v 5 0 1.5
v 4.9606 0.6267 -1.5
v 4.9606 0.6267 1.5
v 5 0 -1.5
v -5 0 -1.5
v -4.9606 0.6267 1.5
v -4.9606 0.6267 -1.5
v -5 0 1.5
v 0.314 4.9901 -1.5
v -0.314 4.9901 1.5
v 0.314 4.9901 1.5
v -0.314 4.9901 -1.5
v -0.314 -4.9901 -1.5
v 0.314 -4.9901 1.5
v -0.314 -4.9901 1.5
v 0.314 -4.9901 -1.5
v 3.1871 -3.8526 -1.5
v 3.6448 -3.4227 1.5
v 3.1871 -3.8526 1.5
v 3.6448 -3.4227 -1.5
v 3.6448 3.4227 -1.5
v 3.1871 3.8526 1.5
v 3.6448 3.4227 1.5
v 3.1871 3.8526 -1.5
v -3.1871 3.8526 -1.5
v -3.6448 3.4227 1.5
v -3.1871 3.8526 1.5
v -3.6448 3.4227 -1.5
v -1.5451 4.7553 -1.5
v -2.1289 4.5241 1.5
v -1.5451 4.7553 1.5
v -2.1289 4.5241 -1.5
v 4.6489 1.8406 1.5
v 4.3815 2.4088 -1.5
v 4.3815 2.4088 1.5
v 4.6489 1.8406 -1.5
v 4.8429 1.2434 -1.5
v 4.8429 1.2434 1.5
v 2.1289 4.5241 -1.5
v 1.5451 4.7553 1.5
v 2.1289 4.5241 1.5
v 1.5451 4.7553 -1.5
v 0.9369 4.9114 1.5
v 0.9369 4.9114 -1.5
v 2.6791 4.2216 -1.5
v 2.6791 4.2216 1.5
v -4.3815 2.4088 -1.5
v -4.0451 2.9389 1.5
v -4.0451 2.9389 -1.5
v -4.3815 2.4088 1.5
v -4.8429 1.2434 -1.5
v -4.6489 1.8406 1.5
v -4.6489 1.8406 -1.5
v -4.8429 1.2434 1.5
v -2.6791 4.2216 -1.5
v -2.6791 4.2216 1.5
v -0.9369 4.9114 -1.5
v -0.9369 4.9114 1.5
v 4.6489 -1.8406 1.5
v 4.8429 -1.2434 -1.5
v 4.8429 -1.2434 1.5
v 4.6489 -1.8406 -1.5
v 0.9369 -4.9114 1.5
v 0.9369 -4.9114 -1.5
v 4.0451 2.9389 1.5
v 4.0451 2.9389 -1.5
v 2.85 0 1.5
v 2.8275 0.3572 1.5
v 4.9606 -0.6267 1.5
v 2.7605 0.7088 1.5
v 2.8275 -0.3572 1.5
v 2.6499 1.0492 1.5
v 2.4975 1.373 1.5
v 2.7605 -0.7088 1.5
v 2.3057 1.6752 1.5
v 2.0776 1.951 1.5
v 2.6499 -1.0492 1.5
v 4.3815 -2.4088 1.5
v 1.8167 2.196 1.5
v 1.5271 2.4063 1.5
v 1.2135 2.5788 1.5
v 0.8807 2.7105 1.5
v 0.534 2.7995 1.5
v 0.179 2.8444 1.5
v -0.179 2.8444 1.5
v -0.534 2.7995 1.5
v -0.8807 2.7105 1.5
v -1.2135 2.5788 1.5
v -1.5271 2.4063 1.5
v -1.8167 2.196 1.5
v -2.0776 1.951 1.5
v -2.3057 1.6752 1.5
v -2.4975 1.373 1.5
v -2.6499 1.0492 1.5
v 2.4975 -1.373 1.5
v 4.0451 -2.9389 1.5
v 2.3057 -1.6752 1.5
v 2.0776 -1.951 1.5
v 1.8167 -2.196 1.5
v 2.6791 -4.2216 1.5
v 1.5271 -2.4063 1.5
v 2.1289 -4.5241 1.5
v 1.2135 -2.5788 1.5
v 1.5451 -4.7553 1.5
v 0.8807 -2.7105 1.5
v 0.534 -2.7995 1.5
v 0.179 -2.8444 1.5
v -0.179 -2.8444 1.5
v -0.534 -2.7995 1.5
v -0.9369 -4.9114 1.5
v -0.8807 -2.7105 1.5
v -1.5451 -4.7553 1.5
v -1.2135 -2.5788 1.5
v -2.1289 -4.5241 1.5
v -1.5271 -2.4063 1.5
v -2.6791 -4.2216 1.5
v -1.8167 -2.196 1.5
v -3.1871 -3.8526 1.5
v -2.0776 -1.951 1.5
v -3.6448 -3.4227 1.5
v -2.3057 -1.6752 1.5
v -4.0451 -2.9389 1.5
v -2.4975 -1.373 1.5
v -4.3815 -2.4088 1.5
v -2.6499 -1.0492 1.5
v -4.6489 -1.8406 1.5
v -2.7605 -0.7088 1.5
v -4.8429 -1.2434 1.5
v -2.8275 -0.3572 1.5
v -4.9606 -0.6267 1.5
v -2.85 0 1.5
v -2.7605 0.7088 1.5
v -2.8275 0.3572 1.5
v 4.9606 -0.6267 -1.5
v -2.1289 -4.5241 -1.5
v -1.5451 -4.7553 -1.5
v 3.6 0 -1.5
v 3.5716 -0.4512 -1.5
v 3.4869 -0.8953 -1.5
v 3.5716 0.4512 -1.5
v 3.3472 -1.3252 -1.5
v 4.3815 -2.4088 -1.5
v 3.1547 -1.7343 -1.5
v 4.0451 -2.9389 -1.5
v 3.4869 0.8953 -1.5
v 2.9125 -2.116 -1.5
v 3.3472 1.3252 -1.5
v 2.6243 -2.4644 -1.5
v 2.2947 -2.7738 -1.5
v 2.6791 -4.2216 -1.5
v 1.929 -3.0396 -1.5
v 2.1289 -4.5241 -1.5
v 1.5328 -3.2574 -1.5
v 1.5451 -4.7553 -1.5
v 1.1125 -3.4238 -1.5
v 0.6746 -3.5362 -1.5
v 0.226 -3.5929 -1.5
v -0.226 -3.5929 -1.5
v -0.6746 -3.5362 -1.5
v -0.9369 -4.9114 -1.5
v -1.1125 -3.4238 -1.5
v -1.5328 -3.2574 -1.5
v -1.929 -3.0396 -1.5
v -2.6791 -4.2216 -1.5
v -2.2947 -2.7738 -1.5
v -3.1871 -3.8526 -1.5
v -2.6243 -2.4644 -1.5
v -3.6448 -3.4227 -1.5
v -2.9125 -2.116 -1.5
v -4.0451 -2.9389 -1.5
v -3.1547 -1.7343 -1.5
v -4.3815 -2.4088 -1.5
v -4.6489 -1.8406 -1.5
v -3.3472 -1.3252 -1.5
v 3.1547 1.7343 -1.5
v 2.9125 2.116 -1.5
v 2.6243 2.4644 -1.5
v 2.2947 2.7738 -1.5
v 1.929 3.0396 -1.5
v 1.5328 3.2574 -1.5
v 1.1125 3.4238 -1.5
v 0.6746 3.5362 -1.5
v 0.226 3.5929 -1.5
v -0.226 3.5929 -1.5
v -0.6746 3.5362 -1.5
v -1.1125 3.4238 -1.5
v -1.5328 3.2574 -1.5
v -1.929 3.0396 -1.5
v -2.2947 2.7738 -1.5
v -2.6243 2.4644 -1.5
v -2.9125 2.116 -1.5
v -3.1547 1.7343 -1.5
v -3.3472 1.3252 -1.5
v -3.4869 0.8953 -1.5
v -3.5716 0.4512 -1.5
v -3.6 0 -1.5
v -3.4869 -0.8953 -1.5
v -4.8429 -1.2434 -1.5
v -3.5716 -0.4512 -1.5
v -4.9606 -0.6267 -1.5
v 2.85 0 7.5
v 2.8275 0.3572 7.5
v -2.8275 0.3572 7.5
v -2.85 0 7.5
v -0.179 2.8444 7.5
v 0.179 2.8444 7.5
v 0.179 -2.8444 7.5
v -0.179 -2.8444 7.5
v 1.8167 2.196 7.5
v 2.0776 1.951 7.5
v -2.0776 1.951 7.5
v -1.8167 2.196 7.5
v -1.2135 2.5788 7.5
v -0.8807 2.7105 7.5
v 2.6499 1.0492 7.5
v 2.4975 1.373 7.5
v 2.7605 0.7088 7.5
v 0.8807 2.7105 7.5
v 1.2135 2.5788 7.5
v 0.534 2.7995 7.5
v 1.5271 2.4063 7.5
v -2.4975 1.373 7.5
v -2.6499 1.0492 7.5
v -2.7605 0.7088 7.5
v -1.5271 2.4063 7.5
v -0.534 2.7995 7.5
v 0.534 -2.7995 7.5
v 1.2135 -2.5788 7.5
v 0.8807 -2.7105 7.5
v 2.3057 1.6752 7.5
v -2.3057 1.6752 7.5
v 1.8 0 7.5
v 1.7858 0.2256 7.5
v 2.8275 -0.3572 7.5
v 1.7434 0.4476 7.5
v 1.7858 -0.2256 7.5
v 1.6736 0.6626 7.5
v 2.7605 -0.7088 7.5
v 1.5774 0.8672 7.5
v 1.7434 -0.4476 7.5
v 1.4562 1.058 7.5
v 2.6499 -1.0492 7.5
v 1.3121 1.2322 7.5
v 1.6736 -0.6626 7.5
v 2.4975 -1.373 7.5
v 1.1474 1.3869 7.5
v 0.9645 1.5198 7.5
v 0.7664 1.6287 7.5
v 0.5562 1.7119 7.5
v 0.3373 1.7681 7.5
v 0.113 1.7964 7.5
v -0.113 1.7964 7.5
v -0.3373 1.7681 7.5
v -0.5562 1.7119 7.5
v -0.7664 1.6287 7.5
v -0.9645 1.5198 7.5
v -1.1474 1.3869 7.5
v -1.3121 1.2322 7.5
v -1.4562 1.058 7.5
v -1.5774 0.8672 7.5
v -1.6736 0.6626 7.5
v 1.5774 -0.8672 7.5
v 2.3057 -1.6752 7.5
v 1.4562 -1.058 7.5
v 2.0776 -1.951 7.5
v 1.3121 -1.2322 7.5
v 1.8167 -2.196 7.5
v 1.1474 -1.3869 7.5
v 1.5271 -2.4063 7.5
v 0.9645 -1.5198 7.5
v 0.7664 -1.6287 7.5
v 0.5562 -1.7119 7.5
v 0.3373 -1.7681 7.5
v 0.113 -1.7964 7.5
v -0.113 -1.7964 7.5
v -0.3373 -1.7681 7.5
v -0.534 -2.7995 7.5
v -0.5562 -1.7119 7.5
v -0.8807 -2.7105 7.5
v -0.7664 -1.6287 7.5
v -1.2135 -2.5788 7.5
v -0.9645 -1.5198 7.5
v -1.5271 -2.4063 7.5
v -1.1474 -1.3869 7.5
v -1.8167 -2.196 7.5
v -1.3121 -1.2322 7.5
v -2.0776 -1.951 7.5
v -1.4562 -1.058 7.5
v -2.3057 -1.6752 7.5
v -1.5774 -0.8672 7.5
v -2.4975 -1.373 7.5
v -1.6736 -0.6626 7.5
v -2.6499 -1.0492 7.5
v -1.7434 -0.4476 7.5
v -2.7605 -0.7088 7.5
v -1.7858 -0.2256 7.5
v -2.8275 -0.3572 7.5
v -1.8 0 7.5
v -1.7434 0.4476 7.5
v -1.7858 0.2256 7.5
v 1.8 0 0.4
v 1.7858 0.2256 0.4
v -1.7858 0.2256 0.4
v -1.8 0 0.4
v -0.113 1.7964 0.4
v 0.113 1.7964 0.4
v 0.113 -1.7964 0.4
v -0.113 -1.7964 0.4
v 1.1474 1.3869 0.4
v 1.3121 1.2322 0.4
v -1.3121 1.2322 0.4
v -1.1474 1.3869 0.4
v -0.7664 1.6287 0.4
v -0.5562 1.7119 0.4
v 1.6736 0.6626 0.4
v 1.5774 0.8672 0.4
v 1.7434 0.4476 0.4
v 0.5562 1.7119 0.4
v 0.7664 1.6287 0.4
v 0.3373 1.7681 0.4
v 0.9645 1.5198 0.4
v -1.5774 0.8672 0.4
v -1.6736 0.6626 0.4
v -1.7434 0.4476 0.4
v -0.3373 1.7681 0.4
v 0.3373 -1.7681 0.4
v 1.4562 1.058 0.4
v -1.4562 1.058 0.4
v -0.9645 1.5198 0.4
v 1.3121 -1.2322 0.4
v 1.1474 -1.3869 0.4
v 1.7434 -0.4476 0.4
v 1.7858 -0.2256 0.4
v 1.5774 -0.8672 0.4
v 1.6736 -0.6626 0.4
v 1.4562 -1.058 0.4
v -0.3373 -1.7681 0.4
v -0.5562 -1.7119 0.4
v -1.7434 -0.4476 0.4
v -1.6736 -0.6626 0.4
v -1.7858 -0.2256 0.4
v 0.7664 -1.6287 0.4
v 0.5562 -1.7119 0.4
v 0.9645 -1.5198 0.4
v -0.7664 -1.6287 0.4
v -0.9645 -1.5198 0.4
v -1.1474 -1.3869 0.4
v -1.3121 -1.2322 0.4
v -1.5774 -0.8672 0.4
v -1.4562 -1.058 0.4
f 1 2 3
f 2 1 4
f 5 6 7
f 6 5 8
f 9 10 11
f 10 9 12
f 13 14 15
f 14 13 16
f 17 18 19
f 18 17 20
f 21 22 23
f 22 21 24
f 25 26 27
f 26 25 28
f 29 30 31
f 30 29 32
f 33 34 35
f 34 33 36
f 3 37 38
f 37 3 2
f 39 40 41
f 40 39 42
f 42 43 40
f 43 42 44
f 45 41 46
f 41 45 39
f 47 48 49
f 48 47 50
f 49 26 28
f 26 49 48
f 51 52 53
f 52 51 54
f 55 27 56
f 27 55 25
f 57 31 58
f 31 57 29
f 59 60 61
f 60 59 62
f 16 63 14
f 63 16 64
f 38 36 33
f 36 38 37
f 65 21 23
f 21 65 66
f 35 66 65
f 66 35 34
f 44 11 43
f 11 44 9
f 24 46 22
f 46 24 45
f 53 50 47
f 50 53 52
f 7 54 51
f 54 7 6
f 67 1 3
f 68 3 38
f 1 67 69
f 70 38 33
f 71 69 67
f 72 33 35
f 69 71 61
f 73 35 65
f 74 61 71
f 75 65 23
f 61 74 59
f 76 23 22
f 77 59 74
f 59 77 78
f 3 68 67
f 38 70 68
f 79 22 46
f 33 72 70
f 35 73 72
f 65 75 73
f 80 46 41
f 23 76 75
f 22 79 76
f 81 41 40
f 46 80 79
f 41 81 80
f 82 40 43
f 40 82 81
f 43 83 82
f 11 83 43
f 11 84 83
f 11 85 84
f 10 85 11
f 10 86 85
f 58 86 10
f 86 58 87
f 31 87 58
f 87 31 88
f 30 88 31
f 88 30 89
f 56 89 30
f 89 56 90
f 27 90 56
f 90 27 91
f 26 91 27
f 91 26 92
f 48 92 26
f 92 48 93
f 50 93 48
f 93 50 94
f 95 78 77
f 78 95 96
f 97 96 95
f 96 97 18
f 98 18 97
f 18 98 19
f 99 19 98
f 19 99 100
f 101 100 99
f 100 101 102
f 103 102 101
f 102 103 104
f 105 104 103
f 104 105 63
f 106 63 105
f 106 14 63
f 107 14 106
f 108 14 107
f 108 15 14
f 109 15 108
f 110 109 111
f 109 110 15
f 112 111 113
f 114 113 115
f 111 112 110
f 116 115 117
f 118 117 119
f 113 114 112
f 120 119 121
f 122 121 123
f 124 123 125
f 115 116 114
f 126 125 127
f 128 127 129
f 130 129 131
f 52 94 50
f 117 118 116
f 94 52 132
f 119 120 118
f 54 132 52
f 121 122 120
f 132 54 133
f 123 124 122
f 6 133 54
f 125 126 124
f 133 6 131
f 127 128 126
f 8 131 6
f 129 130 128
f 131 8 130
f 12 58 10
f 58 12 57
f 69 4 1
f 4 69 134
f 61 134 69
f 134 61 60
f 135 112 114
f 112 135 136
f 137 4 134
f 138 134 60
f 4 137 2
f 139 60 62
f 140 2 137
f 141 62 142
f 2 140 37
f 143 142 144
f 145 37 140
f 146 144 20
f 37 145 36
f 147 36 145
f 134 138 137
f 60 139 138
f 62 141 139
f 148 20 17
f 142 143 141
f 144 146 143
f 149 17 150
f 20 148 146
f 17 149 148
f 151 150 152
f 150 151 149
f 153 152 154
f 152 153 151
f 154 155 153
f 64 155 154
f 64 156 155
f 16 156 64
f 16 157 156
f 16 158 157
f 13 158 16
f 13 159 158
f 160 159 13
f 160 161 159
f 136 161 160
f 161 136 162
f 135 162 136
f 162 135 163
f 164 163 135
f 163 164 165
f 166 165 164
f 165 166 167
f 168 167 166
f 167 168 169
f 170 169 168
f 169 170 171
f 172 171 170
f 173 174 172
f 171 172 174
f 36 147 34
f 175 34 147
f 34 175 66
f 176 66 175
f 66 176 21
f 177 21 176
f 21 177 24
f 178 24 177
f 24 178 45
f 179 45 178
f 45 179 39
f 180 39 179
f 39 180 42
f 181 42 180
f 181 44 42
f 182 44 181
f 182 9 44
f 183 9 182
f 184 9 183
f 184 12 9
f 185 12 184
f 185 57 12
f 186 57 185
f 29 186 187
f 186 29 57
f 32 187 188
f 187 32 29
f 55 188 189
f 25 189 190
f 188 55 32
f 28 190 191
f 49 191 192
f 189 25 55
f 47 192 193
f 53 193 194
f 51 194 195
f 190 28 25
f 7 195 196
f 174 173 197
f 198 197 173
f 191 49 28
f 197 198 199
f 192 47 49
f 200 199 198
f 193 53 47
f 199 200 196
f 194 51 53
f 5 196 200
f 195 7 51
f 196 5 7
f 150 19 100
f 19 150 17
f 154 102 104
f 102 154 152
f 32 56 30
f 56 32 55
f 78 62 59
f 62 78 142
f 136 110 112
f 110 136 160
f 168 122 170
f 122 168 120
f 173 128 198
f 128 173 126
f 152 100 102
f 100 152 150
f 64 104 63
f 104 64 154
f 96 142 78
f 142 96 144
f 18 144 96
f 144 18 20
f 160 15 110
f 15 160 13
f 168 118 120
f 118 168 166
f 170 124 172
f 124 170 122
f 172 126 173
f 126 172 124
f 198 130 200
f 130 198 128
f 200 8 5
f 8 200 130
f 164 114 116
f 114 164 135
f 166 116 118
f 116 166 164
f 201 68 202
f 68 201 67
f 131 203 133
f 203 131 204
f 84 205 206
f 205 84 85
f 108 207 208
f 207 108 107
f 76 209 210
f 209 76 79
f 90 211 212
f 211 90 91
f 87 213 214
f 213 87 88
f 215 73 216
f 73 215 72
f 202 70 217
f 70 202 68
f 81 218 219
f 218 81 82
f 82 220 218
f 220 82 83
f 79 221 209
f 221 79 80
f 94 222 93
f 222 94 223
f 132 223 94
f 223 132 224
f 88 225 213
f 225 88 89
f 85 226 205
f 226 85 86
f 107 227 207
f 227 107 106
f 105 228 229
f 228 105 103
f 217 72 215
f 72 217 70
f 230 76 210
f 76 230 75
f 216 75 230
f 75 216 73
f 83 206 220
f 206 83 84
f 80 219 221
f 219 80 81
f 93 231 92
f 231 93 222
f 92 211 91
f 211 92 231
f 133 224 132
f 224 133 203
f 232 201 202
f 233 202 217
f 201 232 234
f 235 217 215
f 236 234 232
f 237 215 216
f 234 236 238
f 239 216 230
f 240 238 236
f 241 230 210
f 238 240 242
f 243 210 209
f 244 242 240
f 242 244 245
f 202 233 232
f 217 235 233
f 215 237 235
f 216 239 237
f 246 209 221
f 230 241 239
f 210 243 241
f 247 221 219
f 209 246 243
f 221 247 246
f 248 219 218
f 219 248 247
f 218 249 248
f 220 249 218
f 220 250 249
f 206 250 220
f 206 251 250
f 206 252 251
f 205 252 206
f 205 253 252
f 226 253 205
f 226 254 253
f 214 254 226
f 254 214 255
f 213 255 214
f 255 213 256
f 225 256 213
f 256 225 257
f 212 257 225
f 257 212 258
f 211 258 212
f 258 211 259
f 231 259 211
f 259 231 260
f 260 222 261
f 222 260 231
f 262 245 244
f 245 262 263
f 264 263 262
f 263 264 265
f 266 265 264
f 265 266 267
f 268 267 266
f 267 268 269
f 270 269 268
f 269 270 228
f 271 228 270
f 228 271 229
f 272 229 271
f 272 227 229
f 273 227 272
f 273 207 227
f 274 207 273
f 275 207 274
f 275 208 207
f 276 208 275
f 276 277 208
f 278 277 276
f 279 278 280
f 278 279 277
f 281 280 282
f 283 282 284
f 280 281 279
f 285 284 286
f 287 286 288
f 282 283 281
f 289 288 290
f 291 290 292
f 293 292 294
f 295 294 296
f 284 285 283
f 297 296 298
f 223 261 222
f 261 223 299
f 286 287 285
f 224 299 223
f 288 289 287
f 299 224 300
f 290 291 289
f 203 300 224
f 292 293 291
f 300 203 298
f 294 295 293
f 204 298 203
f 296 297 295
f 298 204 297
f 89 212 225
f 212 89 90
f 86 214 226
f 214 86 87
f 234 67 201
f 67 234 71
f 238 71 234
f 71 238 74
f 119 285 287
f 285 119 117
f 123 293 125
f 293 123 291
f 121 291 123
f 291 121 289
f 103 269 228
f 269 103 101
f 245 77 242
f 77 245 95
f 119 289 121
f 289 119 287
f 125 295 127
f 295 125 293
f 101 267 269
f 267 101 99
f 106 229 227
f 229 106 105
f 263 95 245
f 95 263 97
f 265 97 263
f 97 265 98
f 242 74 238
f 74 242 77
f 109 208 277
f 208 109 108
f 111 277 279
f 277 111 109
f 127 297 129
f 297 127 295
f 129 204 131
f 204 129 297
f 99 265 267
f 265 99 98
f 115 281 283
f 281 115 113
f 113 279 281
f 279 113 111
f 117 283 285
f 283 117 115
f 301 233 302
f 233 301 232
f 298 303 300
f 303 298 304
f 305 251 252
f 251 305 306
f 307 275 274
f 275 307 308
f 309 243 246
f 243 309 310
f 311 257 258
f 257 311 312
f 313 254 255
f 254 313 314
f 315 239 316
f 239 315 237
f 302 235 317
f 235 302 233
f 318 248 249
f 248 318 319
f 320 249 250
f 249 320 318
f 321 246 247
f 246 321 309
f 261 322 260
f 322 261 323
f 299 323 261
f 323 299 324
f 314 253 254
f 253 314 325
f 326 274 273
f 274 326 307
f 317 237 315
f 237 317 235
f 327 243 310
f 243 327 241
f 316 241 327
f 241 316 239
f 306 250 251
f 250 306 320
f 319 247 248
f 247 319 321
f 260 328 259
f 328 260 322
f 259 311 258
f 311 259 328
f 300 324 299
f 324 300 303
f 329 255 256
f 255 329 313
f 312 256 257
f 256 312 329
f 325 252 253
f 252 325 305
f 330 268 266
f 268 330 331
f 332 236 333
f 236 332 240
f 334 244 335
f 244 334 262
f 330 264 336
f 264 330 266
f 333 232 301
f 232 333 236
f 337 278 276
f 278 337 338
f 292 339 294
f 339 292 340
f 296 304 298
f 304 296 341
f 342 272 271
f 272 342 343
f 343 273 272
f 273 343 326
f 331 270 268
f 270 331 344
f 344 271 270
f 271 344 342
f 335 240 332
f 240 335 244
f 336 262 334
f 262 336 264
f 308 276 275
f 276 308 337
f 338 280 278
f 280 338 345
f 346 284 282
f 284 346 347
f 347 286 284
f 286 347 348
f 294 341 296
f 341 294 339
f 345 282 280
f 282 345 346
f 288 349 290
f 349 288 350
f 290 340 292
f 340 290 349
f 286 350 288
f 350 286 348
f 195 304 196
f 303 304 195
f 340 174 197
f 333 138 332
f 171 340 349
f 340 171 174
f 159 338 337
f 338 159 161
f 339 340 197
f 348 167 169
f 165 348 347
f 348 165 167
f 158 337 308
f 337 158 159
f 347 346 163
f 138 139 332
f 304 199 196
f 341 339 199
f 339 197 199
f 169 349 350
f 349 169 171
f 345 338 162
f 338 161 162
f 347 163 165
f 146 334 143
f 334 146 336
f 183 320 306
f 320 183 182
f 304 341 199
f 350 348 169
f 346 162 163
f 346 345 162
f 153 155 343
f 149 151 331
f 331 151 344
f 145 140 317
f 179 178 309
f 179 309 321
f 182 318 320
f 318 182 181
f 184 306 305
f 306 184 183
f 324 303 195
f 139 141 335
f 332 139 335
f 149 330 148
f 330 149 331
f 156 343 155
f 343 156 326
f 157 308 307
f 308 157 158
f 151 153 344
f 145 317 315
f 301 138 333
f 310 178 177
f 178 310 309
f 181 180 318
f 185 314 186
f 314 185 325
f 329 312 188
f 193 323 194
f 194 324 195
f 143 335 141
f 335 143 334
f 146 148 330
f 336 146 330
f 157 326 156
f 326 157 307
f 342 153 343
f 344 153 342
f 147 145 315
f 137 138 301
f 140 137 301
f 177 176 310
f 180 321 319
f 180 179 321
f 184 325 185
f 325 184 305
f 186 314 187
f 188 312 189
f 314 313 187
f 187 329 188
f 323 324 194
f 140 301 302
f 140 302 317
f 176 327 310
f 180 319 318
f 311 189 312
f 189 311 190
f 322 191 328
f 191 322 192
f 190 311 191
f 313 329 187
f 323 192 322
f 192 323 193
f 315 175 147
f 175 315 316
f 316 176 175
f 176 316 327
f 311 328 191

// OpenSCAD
$fn = 50;


difference() {
	union() {
		translate(v = [0, 0, -1.5000000000]) {
			rotate(a = [0, 0, 0]) {
				cylinder(h = 3, r = 5.0000000000);
			}
		}
		translate(v = [0, 0, -1.5000000000]) {
			rotate(a = [0, 0, 0]) {
				cylinder(h = 9, r = 2.8500000000);
			}
		}
	}
	union() {
		translate(v = [0, 0, -125.0000000000]) {
			rotate(a = [0, 0, 0]) {
				cylinder(h = 250, r = 1.8000000000);
			}
		}
		#translate(v = [0, 0, 0.4000000000]) {
			rotate(a = [0, 180, 0]) {
				cylinder(h = 1.9000000000, r1 = 1.8000000000, r2 = 3.6000000000);
			}
		}
		#translate(v = [0, 0, 7.5000000000]) {
			rotate(a = [0, 180, 0]) {
				cylinder(h = 9, r = 1.8000000000);
			}
		}
	}
}
